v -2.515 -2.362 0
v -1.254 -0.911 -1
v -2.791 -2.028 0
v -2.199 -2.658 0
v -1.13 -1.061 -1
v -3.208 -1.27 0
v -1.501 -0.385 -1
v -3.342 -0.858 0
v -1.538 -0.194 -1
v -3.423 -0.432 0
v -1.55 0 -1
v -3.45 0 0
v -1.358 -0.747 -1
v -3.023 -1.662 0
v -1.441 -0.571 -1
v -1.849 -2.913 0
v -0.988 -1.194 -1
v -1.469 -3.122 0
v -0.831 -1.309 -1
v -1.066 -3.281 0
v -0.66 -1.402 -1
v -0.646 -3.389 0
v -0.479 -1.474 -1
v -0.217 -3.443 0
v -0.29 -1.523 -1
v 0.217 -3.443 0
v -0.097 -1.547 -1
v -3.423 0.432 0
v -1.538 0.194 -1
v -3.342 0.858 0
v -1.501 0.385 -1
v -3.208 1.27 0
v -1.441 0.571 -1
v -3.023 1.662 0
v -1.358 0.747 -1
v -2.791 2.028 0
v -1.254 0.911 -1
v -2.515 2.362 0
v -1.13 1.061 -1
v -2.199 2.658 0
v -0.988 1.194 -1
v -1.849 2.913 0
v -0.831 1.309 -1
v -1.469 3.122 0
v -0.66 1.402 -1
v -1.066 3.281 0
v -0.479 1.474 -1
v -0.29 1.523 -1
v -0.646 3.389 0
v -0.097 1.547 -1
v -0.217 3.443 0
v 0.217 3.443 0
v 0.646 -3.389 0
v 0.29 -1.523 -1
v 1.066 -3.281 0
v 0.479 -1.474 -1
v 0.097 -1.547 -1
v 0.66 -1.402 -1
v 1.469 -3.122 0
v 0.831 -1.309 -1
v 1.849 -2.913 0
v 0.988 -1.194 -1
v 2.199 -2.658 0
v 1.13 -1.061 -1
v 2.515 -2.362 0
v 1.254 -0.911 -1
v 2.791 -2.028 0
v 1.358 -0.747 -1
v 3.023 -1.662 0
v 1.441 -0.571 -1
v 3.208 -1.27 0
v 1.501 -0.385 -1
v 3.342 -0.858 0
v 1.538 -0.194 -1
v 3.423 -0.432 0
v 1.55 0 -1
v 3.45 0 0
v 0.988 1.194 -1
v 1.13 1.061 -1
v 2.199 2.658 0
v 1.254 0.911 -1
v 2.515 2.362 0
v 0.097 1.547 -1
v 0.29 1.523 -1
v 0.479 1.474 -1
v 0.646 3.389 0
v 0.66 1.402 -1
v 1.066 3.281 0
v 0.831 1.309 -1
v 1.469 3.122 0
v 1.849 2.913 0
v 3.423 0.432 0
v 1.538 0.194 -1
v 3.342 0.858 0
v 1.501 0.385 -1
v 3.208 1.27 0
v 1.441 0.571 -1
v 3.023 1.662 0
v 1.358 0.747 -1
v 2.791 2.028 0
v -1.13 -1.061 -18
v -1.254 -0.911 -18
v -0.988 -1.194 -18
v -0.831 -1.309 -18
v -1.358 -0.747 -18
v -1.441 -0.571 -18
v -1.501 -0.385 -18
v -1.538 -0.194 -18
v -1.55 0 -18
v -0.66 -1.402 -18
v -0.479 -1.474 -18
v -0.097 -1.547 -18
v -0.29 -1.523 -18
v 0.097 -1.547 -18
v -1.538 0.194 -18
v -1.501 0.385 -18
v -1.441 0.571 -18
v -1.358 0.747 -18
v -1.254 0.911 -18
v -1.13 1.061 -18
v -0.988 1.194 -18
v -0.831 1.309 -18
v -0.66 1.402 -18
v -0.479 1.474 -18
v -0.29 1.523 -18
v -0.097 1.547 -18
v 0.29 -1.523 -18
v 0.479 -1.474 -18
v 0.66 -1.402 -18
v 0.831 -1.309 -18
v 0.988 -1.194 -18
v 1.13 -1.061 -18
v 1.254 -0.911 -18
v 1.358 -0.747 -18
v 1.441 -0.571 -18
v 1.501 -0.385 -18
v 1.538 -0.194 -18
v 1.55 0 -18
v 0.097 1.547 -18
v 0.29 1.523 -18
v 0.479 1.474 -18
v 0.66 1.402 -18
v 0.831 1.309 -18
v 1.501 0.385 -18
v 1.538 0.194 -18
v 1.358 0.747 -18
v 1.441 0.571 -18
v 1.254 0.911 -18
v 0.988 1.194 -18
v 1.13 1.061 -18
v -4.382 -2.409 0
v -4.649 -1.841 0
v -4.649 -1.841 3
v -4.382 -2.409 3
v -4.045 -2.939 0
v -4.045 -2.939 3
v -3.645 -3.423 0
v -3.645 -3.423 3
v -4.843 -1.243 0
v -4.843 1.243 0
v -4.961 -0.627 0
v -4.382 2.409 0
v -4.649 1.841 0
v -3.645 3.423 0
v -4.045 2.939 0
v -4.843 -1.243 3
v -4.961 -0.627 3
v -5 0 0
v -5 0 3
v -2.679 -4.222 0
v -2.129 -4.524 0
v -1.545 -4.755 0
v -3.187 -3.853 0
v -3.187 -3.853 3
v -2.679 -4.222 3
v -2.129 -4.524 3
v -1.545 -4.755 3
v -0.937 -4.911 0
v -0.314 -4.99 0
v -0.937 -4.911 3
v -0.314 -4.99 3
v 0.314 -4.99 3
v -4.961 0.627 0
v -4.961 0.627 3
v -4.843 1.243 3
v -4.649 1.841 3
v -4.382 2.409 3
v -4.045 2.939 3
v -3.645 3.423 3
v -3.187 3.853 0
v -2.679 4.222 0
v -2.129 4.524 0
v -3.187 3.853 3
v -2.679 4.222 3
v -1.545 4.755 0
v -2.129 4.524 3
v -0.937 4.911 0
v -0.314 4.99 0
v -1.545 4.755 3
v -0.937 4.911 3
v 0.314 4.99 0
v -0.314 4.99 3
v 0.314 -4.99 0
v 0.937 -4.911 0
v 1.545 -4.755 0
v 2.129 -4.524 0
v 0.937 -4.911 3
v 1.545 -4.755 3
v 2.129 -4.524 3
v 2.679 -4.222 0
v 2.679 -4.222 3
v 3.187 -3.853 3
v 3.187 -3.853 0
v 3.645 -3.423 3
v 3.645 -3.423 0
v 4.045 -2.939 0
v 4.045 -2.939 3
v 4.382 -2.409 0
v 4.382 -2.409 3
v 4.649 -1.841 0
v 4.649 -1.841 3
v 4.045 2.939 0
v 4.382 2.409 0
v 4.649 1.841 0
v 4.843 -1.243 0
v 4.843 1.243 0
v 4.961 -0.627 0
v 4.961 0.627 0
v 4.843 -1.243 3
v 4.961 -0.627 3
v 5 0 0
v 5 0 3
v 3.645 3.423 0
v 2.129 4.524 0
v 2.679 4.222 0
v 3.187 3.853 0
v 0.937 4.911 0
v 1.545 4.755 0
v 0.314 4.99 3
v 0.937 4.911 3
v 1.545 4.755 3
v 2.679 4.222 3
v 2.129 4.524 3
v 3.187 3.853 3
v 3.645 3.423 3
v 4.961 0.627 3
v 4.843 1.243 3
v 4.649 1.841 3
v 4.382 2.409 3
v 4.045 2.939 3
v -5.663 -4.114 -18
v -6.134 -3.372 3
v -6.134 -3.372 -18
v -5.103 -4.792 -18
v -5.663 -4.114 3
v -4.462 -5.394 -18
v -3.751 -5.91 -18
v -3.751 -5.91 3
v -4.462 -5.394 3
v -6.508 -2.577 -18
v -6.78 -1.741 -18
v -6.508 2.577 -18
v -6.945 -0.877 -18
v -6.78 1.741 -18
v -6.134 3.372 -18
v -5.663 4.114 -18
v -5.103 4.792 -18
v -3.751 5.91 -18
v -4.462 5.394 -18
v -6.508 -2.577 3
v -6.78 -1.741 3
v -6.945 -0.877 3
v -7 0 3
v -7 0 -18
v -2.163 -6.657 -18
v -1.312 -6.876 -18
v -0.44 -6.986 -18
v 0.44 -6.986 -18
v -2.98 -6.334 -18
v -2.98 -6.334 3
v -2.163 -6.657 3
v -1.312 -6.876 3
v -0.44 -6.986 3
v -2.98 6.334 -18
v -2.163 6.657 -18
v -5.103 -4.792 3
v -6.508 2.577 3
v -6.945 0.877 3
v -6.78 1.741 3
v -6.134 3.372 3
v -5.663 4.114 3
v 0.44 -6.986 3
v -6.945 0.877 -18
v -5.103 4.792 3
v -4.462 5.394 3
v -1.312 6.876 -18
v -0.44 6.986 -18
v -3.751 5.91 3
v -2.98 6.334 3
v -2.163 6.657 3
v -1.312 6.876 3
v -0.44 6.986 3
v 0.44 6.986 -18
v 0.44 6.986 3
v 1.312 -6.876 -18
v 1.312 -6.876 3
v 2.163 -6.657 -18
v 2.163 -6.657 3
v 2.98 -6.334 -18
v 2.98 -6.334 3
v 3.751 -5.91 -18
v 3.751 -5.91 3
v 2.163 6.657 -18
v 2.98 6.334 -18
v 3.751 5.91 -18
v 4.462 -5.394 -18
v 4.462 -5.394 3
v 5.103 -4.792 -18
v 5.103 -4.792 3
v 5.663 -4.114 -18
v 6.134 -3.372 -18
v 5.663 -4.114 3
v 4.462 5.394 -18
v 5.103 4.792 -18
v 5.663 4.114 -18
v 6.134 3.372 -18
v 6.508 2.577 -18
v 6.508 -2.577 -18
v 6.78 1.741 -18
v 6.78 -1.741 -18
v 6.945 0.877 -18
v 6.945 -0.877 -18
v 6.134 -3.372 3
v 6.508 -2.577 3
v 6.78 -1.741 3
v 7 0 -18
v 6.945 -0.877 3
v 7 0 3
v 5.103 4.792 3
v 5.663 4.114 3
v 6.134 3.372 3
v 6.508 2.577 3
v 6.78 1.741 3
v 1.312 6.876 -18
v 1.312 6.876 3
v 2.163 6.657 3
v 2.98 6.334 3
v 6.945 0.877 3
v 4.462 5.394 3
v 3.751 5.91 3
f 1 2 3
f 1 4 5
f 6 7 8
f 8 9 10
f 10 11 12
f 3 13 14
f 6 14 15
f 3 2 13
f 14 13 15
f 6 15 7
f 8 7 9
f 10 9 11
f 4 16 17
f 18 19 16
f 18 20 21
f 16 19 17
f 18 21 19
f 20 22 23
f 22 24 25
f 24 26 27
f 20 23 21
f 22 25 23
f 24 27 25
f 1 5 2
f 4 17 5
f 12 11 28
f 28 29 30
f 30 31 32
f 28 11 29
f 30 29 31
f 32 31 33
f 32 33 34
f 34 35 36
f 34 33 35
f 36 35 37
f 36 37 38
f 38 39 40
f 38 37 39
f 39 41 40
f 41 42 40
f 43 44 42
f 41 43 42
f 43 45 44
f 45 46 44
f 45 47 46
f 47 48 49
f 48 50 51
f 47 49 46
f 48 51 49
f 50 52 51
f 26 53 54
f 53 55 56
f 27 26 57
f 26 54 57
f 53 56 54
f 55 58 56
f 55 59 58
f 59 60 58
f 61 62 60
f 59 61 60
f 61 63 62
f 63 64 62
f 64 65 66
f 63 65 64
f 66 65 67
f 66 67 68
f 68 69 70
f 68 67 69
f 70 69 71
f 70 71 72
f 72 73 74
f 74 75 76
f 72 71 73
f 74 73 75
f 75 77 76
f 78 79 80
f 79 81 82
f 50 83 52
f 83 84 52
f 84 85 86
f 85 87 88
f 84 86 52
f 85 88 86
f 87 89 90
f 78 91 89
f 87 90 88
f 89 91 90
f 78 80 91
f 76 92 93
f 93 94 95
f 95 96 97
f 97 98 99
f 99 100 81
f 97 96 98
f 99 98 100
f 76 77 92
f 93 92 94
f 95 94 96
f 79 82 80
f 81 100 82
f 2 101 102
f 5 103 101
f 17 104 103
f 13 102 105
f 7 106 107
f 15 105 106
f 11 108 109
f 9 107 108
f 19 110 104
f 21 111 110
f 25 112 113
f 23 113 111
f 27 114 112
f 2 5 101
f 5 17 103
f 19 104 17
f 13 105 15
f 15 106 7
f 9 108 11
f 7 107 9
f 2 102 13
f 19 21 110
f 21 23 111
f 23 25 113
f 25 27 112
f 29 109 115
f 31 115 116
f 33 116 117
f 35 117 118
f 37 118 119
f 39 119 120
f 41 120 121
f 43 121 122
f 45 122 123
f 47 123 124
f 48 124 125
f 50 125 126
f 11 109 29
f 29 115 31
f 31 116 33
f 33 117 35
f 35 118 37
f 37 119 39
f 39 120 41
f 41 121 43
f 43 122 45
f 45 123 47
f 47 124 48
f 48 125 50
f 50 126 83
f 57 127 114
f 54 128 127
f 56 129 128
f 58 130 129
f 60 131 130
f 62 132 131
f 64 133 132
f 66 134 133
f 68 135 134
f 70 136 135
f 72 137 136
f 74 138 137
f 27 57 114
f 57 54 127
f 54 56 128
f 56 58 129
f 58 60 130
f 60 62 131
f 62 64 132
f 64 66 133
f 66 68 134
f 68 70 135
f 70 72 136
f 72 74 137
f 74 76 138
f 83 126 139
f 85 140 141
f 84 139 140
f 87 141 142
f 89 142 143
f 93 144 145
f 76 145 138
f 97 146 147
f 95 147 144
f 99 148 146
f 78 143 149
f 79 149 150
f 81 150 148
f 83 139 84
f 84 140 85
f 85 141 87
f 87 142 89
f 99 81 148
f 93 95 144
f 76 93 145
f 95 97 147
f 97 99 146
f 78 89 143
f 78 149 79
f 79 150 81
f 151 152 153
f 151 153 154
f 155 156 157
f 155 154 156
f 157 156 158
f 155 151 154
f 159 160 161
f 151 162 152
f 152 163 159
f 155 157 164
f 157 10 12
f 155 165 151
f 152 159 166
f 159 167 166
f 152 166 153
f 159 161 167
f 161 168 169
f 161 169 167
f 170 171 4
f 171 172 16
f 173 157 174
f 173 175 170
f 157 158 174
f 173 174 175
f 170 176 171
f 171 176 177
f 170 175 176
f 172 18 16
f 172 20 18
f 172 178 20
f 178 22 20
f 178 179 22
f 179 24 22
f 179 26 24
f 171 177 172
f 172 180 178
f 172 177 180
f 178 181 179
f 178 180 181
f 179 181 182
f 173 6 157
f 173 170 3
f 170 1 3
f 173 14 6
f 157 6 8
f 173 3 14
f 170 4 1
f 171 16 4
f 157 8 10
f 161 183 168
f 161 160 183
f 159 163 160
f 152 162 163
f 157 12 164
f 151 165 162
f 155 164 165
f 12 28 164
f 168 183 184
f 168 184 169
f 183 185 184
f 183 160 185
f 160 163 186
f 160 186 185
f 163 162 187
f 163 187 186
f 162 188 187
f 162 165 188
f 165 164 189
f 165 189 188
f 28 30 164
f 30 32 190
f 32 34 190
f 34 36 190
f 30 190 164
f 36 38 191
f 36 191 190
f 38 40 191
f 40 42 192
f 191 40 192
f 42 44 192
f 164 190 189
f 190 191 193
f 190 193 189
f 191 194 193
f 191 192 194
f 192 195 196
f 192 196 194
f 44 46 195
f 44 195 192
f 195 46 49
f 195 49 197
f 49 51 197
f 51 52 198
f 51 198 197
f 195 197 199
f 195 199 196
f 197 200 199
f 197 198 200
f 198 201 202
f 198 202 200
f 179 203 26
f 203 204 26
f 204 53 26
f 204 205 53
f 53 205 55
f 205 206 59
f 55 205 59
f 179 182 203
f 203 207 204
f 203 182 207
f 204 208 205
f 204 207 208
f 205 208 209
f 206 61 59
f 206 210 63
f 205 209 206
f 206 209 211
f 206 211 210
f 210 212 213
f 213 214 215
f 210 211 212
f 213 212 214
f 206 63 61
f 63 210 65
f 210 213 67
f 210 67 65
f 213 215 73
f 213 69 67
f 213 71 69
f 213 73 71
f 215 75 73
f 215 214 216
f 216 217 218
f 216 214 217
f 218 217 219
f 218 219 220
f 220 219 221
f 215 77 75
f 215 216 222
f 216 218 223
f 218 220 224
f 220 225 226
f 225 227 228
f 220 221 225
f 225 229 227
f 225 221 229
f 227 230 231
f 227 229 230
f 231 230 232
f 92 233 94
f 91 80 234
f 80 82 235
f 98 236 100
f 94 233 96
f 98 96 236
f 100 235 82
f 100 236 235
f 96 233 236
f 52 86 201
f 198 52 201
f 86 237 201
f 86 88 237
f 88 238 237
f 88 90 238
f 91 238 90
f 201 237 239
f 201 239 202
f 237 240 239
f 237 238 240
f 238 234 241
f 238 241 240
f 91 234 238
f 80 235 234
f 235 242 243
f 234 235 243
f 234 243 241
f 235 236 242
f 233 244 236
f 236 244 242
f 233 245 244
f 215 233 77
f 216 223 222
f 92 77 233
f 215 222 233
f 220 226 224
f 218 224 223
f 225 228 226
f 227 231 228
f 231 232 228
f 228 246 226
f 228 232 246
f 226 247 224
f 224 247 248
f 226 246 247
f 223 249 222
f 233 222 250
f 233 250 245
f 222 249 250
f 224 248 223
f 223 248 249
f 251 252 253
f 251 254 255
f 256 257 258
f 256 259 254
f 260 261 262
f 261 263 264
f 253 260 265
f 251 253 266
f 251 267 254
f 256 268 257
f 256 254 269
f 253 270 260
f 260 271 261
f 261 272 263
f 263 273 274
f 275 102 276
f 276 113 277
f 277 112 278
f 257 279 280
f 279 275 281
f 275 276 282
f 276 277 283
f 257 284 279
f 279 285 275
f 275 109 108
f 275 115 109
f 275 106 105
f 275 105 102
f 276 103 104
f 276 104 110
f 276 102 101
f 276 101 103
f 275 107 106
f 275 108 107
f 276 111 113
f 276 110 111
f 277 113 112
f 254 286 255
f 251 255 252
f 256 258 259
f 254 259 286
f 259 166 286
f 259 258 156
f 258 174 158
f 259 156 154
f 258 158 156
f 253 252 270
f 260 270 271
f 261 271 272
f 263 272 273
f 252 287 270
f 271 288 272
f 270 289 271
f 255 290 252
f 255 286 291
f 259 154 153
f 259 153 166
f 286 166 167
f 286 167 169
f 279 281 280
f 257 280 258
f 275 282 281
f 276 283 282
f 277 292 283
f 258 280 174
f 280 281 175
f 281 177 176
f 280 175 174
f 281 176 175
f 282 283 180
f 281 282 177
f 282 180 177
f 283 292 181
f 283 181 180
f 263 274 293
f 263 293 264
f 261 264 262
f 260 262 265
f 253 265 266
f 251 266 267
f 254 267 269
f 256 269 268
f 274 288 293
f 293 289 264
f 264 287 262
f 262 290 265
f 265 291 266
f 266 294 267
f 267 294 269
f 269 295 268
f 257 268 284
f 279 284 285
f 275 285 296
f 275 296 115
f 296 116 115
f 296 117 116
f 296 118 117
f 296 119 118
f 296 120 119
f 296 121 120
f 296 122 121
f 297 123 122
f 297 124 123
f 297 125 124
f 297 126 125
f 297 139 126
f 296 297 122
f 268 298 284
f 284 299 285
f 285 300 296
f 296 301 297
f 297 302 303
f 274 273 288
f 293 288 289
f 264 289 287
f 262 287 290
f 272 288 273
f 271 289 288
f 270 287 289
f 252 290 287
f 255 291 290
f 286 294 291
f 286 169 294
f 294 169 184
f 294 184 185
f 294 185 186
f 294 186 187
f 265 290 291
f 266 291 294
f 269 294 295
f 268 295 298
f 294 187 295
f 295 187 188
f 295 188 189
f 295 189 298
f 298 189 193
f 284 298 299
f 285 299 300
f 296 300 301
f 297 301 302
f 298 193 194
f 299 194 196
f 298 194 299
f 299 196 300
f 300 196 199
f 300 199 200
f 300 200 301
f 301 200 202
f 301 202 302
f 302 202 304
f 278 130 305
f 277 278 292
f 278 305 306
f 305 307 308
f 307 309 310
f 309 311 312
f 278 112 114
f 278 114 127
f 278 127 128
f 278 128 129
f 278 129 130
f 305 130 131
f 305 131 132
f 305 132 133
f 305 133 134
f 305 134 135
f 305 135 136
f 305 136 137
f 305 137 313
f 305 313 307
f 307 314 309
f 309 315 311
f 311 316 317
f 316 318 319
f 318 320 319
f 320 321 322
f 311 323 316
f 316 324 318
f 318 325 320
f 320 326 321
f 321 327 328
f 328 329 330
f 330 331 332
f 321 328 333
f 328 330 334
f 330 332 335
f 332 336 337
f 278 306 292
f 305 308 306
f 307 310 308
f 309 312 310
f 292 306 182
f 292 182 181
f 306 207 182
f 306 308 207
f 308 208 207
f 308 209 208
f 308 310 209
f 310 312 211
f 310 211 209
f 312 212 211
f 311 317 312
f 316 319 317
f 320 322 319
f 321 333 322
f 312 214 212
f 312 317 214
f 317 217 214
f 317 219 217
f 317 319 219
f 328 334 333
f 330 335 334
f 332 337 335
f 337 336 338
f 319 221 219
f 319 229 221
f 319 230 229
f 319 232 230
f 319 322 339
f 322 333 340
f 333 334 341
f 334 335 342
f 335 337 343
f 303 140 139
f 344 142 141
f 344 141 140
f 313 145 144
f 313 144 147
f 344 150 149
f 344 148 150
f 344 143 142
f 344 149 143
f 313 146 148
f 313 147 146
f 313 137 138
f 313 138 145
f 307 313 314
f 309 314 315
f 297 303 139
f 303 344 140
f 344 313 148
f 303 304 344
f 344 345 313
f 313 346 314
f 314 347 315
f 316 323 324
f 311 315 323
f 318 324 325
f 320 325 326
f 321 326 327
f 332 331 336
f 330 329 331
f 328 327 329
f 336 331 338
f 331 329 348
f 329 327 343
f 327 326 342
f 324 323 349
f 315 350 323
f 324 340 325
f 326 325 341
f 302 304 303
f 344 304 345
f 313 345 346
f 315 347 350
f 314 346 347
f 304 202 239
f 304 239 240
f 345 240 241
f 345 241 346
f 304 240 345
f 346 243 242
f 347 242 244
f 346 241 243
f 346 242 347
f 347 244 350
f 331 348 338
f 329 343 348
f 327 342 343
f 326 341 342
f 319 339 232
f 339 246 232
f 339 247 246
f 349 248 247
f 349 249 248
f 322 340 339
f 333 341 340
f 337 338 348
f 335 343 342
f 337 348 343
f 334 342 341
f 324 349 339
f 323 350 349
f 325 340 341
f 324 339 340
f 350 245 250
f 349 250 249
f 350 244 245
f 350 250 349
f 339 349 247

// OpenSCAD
$fn = 50;

difference() {
	union() {
		translate(v = [0, 0, -18.0]) {
			cylinder(h = 21, r = 7.0);
		}
	}
	union() {
		translate(v = [0, 0, 0]) {
			rotate(a = [0, 0, 0]) {
				difference() {
					union() {
						translate(v = [0, 0, -21.0]) {
							cylinder(h = 21, r = 1.25);
						}
						translate(v = [0, 0, -1.0]) {
							cylinder(h = 1.0, r1 = 1.55, r2 = 3.45);
						}
						translate(v = [0, 0, -21.0]) {
							cylinder(h = 21, r = 1.55);
						}
						translate(v = [0, 0, -21.0]) {
							cylinder(h = 21, r = 1.25);
						}
					}
					union();
				}
			}
		}
		#cylinder(h = 3, r = 5.0);
	}
}
